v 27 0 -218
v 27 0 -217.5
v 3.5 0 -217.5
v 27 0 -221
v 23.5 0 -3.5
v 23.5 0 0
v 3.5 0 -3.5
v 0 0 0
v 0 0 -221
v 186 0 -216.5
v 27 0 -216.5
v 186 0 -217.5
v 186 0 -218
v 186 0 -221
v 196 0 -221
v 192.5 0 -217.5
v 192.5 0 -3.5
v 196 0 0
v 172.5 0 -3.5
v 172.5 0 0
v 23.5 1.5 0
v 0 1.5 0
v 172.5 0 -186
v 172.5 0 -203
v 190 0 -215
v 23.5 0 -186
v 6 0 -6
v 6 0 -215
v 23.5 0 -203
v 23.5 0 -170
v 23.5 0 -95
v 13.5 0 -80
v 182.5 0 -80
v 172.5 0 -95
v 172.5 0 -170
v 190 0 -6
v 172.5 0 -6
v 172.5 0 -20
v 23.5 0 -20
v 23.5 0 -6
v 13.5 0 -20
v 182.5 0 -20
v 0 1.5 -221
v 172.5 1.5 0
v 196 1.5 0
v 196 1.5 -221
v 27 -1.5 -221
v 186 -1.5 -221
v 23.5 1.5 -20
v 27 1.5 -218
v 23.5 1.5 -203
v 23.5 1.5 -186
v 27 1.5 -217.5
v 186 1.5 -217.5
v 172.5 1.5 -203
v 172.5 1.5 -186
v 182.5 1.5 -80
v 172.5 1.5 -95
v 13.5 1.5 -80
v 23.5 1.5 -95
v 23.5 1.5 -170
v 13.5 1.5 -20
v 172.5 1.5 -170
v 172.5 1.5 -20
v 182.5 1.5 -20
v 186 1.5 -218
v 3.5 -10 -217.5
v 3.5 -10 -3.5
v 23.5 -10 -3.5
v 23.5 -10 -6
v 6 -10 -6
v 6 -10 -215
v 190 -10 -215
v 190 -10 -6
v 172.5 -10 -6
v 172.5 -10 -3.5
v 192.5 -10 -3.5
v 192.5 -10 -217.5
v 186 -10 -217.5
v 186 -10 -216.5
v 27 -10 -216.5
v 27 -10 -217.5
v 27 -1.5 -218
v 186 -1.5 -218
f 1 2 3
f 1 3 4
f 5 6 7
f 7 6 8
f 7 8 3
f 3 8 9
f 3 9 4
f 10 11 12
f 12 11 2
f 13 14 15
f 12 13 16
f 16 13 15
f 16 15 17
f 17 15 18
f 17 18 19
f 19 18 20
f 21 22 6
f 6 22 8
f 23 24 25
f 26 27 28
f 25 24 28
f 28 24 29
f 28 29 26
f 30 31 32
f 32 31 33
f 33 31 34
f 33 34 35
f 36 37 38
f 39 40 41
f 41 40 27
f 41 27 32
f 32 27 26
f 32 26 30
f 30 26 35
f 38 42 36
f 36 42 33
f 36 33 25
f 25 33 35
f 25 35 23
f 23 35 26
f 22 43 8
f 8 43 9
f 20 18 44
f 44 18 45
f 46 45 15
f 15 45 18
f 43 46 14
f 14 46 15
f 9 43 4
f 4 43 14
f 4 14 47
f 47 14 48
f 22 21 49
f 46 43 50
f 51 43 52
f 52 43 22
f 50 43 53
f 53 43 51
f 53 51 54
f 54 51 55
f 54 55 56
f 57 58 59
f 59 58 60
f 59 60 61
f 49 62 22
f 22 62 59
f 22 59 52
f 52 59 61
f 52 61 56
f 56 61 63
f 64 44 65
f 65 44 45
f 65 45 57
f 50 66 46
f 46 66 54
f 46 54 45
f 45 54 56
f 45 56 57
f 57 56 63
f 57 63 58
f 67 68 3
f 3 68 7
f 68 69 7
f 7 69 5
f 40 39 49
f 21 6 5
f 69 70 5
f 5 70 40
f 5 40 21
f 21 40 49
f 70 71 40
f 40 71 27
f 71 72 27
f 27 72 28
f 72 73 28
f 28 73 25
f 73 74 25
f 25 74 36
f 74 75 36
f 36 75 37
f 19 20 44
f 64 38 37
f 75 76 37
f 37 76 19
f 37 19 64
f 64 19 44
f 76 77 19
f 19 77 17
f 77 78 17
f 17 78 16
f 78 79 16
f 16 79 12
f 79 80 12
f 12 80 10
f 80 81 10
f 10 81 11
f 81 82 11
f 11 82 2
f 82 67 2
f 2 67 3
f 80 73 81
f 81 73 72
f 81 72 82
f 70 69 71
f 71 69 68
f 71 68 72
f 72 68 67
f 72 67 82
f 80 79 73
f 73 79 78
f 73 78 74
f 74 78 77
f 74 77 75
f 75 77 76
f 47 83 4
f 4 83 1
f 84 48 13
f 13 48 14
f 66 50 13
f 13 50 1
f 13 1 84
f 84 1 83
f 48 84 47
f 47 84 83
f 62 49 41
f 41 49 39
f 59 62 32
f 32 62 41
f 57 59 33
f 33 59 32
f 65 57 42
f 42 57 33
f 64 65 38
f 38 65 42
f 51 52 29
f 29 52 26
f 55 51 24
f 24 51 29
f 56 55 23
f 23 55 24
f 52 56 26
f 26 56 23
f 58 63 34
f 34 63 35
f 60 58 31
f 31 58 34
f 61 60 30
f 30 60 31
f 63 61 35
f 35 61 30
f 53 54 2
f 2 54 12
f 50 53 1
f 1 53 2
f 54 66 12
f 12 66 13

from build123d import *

# Parameters (mm, degrees)
SKETCH_1_W           = 196
SKETCH_1_H           = 221
EXTRUDE_1_DEPTH      = 1.5
EXTRUDE_2_DEPTH      = 1.5
EXTRUDE_2_DEPTH_BACK = 10
SKETCH_4_W           = 159
SKETCH_4_H           = 3
EXTRUDE_3_DEPTH      = 1.5
SKETCH_8_W           = 159
SKETCH_8_H           = 0.5
SKETCH_8_W_2         = 149
SKETCH_8_H_2         = 75
SKETCH_8_H_3         = 17
CUT_EXTRUDE_5_DEPTH  = 41.5


with BuildPart() as part:
    # 草图1 → 凸台-拉伸1 (new body)
    with BuildSketch(Plane(origin=(0, 0, 0), x_dir=(1, 0, 0), z_dir=(0, 1, 0))):
        with Locations((98, 110.5)):
            Rectangle(SKETCH_1_W, SKETCH_1_H)
    extrude(amount=EXTRUDE_1_DEPTH)

    # 草图3 → 凸台-拉伸2 (add, two sides)
    with BuildSketch(Plane(origin=(0, 0, 0), x_dir=(1, 0, 0), z_dir=(0, 1, 0))) as extrude_2_sk:
        Polygon((3.5, 217.5), (27, 217.5), (27, 216.5), (186, 216.5), (186, 217.5), (192.5, 217.5), (192.5, 6), (192.5, 3.5), (172.5, 3.5), (172.5, 6), (190, 6), (190, 215), (6, 215), (6, 6), (23.5, 6), (23.5, 3.5), (3.5, 3.5), align=None)
    extrude(amount=EXTRUDE_2_DEPTH)
    extrude(extrude_2_sk.sketch, amount=-EXTRUDE_2_DEPTH_BACK)

    # 草图4 → 凸台-拉伸3 (add)
    with BuildSketch(Plane(origin=(0, 0, 0), x_dir=(1, 0, 0), z_dir=(0, 1, 0))):
        with Locations((106.5, 219.5)):
            Rectangle(SKETCH_4_W, SKETCH_4_H)
    extrude(amount=-EXTRUDE_3_DEPTH)

    # 草图8 → 切除-拉伸5 (cut)
    with BuildSketch(Plane(origin=(0, 1.5, 0), x_dir=(1, 0, 0), z_dir=(0, 1, 0))):
        Polygon((23.5, 0), (172.5, 0), (172.5, 20), (182.5, 20), (182.5, 80), (172.5, 80), (23.5, 80), (13.5, 80), (13.5, 20), (23.5, 20), align=None)
        with Locations((106.5, 217.75)):
            Rectangle(SKETCH_8_W, SKETCH_8_H)
        with Locations((98, 132.5)):
            Rectangle(SKETCH_8_W_2, SKETCH_8_H_2)
        with Locations((98, 194.5)):
            Rectangle(SKETCH_8_W_2, SKETCH_8_H_3)
    extrude(amount=-CUT_EXTRUDE_5_DEPTH, mode=Mode.SUBTRACT)


solid = part.part
